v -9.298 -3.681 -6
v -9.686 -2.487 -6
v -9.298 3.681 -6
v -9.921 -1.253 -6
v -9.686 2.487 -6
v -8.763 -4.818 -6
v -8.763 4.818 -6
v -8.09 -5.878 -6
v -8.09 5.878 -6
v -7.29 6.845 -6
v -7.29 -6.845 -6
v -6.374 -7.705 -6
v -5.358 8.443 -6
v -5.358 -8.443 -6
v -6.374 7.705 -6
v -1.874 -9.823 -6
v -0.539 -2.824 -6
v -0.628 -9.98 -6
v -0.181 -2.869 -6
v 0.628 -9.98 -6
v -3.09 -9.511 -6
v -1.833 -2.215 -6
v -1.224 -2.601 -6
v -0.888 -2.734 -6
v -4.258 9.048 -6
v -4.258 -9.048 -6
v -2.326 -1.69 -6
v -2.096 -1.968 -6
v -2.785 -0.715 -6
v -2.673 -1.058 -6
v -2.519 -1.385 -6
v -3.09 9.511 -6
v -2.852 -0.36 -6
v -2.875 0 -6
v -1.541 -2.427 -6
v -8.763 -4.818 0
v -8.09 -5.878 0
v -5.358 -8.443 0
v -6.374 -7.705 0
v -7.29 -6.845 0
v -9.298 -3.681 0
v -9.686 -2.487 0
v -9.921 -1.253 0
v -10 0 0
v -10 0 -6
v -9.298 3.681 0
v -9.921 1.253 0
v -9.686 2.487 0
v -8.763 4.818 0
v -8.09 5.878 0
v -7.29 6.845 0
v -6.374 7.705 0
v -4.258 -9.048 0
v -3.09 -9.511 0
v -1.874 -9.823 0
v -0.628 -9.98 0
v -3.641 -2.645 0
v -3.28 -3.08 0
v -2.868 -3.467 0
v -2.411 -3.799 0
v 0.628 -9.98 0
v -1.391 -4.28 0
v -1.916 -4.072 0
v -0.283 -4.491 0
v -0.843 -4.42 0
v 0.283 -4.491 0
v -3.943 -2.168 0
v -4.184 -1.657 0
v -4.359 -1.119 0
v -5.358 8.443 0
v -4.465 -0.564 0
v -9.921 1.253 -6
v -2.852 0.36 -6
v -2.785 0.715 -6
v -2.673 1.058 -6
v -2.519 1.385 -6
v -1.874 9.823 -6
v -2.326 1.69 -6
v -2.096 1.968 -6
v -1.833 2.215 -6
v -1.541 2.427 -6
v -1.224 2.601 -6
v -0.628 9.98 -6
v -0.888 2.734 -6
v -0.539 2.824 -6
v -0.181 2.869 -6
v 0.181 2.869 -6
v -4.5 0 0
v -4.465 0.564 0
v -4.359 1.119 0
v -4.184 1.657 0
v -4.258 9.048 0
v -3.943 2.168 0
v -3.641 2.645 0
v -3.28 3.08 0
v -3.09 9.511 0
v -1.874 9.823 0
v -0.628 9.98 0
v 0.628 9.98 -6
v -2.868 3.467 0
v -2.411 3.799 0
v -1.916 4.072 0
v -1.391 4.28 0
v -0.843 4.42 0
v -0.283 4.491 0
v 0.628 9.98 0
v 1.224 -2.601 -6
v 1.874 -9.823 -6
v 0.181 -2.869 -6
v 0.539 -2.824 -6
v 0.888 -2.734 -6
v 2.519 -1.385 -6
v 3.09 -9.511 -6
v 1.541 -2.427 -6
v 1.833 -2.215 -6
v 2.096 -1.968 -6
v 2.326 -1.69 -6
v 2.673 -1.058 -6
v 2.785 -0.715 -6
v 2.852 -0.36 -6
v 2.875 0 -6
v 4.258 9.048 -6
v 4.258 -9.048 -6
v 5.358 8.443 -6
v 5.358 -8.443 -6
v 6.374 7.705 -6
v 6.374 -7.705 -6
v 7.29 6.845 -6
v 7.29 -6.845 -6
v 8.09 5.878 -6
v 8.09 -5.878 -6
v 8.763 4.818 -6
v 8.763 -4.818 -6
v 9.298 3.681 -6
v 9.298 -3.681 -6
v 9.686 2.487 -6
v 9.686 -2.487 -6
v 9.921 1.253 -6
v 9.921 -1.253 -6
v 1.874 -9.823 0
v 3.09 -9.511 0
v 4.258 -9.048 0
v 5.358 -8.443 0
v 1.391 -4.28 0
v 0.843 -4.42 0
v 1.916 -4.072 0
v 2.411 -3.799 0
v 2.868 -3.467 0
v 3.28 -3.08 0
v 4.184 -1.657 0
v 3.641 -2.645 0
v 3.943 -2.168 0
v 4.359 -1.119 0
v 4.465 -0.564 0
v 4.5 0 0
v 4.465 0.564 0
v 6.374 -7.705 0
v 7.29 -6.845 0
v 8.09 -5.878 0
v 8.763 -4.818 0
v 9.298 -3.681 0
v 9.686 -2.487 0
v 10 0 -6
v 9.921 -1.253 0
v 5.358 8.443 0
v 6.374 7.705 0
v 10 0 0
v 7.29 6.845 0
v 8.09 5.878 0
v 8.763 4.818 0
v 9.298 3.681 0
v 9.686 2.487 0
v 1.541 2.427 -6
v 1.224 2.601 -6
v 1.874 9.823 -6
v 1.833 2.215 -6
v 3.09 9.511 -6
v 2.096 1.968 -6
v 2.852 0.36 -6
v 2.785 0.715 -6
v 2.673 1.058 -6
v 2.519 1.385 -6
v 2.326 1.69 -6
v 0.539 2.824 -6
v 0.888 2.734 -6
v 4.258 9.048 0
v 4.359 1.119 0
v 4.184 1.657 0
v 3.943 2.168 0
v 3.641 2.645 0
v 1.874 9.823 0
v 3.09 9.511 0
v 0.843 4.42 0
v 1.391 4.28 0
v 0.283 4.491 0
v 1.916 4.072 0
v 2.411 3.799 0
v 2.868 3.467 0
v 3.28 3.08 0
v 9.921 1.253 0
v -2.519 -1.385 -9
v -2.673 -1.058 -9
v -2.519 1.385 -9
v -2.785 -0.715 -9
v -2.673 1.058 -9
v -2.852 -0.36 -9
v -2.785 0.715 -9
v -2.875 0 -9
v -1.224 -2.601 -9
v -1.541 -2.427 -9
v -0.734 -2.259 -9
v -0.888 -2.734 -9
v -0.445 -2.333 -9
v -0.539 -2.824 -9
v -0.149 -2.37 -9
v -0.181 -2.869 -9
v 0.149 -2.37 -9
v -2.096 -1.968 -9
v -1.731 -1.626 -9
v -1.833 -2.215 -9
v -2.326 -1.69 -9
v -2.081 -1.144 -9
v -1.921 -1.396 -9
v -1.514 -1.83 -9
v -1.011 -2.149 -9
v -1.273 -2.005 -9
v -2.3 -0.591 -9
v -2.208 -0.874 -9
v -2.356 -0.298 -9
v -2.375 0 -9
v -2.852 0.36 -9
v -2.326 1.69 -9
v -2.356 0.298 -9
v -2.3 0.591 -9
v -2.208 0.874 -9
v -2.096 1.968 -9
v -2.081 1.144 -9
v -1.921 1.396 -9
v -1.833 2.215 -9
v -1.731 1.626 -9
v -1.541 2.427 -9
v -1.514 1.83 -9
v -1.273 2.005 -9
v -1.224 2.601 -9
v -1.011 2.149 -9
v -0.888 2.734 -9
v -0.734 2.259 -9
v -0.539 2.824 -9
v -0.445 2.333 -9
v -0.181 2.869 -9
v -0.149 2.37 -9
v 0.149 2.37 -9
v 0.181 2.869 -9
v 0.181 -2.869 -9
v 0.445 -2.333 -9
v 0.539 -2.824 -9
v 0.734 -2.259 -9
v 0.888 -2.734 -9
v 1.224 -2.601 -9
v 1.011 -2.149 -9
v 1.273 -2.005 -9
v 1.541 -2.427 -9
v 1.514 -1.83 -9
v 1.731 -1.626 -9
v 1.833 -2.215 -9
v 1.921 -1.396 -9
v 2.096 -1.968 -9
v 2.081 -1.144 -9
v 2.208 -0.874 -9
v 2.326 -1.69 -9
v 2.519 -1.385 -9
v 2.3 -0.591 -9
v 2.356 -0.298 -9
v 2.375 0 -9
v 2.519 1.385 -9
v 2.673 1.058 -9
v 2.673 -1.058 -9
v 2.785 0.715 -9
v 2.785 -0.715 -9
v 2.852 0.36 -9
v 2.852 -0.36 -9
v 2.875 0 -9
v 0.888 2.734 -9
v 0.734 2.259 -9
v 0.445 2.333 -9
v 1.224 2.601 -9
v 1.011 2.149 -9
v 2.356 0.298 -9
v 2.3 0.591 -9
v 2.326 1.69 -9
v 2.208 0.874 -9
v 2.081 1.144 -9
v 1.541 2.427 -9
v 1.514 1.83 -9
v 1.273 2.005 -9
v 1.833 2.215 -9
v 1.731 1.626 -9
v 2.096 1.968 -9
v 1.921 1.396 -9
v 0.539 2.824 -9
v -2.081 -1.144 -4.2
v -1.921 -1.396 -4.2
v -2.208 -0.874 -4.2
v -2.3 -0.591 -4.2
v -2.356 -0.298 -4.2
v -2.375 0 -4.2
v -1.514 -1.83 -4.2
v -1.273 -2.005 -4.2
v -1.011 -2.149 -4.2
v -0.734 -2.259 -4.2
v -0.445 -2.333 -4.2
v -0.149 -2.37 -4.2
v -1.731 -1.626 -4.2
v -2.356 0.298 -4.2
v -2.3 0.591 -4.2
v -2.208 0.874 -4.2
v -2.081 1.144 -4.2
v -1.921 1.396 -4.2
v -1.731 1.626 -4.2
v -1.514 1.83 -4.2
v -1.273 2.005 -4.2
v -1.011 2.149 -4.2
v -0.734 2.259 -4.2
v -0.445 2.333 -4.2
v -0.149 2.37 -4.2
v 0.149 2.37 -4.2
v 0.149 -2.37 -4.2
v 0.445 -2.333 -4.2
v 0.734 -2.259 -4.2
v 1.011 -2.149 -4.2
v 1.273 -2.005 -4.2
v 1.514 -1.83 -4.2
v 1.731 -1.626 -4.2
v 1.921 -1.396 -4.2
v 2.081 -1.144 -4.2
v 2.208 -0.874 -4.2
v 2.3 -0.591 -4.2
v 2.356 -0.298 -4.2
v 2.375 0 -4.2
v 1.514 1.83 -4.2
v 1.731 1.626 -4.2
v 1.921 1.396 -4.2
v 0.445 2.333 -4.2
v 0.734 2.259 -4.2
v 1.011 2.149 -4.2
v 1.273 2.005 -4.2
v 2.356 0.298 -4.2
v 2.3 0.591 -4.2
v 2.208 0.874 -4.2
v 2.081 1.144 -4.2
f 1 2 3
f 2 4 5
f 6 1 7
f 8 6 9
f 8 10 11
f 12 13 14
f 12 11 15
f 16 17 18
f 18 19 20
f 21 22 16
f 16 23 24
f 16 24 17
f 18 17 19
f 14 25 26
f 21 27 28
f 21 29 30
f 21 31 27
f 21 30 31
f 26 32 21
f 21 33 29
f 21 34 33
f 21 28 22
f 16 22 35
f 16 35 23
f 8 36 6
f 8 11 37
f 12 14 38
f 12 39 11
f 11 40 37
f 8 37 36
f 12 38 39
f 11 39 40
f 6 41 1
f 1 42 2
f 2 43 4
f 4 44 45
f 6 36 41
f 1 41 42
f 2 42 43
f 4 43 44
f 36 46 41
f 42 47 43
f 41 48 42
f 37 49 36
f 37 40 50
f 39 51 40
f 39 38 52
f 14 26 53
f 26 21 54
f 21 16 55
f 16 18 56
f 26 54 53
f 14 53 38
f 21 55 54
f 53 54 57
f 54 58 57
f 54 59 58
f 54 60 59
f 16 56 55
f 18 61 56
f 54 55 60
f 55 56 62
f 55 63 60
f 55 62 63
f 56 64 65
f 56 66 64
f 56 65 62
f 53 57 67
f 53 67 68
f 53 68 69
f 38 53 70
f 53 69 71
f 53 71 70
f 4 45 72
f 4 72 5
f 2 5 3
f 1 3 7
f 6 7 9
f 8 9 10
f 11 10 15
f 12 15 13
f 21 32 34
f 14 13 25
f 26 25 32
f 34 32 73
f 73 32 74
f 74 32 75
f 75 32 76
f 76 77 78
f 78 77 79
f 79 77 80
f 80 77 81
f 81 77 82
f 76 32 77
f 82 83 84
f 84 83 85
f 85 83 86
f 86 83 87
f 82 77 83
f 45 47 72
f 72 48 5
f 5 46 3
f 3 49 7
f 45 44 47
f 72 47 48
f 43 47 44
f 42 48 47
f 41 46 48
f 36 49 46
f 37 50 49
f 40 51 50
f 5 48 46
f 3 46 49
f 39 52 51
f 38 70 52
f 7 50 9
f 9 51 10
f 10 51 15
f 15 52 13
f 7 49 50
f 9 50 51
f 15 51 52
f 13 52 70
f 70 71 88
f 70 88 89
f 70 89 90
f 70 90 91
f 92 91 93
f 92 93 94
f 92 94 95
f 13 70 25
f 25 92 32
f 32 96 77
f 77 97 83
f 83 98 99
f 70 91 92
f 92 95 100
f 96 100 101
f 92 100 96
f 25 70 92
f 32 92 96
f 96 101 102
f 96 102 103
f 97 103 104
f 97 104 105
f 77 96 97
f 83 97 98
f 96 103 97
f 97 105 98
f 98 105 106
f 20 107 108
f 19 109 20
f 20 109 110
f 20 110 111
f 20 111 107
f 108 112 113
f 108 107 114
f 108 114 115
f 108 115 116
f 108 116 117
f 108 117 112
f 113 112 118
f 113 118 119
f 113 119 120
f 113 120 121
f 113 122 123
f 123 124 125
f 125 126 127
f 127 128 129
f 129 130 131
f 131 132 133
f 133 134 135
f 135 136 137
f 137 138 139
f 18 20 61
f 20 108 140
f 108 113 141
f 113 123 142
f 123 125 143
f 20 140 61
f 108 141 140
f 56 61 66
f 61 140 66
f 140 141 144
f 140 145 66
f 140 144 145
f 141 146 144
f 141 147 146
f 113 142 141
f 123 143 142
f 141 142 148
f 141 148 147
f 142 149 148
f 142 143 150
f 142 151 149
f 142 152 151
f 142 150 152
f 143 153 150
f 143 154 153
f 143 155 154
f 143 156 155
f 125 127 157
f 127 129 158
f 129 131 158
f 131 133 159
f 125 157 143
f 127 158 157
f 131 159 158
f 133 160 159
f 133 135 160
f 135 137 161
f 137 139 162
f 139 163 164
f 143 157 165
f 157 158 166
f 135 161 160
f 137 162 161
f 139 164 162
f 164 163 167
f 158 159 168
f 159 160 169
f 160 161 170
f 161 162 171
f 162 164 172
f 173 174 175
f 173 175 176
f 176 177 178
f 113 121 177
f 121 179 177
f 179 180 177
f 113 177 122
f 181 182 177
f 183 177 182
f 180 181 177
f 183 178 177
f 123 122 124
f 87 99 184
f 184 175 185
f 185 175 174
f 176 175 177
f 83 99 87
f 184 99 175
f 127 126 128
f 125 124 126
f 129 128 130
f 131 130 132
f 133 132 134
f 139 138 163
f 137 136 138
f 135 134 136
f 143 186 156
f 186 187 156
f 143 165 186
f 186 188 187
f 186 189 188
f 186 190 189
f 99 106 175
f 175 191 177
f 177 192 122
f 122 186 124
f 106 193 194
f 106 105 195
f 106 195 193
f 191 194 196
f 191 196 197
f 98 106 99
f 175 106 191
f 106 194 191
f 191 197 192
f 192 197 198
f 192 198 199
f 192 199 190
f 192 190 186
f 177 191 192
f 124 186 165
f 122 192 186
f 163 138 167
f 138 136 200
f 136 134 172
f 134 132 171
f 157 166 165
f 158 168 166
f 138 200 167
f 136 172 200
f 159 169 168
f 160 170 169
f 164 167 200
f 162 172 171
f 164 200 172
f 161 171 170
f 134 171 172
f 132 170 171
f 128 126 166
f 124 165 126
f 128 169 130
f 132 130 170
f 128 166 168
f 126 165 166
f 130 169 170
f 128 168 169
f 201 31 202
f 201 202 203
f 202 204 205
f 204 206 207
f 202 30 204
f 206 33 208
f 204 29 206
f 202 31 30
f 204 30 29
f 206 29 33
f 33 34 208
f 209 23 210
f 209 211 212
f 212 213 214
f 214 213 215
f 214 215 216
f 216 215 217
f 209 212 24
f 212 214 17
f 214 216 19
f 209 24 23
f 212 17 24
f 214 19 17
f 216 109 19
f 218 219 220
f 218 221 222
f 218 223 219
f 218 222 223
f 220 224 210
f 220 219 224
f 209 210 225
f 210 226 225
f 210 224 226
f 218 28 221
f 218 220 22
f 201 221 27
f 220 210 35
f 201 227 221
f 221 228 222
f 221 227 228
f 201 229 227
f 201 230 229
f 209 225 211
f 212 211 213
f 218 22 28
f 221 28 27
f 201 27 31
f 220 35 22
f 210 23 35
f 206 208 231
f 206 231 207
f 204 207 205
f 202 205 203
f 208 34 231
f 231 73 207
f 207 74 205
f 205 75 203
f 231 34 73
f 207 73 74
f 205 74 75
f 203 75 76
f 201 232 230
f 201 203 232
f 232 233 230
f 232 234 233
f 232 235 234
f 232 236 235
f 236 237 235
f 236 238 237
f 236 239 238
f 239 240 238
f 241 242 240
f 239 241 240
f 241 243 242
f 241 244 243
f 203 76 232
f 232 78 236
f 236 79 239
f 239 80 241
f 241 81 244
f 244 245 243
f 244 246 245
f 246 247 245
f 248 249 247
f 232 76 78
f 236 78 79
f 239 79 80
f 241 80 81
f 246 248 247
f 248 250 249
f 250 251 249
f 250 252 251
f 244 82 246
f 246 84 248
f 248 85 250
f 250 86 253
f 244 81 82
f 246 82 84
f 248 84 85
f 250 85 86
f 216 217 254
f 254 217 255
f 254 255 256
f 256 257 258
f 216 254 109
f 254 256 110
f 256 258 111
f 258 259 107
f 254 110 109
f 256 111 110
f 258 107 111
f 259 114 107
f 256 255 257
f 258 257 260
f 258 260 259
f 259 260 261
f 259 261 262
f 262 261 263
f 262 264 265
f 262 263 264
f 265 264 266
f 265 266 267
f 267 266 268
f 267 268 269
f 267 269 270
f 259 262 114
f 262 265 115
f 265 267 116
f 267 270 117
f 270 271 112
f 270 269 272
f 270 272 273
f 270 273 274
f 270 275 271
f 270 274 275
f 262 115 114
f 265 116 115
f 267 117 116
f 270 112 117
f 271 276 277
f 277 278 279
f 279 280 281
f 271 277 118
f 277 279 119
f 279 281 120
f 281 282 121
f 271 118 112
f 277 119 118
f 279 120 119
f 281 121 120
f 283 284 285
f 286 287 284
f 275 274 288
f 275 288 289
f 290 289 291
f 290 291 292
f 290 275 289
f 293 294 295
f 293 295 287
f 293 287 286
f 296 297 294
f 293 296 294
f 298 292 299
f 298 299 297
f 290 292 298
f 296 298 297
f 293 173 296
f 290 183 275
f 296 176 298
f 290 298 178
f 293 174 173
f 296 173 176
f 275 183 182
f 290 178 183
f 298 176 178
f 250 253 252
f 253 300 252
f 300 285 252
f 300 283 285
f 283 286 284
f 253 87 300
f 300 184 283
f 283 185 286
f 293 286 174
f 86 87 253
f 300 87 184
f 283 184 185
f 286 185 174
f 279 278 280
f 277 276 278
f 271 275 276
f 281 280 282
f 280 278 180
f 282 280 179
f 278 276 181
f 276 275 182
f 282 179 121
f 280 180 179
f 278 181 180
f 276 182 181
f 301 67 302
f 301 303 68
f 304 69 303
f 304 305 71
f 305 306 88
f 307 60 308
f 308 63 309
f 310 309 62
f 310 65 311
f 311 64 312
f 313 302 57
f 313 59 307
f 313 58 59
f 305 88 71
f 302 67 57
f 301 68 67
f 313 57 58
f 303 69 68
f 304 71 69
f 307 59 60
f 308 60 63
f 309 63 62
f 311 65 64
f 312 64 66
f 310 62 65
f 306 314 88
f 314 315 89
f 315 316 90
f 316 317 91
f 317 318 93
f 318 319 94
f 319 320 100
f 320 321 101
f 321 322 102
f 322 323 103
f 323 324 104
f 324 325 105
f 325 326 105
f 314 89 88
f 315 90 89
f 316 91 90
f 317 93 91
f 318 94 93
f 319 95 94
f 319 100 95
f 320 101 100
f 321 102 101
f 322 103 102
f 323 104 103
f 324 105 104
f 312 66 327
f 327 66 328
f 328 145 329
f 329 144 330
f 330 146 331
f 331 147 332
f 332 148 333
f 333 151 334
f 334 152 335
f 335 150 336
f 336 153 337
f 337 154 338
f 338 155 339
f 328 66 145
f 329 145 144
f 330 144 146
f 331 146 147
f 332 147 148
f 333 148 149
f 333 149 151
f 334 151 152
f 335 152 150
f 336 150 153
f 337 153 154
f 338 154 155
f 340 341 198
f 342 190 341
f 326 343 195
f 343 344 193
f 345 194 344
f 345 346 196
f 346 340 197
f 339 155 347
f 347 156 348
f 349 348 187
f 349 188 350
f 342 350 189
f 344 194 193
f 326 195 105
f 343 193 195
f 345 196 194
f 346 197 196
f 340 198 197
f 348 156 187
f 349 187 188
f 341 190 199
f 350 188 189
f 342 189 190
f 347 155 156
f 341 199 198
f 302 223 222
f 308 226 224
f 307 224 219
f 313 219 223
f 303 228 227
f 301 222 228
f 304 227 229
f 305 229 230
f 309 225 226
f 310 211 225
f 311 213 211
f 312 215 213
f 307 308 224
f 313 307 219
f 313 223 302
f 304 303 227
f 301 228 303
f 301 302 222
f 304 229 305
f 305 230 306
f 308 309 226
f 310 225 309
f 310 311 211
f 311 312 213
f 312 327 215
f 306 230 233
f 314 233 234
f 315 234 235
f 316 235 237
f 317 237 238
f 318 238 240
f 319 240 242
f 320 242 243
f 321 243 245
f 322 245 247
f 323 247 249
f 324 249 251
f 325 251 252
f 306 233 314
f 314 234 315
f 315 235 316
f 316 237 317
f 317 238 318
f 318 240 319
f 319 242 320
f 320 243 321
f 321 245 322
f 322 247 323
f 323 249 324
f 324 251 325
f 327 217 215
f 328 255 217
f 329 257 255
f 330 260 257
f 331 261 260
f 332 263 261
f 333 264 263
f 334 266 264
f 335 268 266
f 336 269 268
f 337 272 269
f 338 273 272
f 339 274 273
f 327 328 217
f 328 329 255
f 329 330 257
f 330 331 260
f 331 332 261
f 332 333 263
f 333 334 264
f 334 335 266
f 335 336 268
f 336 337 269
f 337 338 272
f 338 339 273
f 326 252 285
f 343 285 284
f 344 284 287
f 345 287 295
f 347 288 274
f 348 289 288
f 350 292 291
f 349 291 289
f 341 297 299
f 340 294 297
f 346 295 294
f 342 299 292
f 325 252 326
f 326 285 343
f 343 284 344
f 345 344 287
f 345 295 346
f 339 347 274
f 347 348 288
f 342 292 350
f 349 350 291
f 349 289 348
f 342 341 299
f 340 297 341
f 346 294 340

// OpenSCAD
$fn = 50;

difference() {
	union() {
		translate(v = [0, 0, -6.0]) {
			cylinder(h = 6, r = 10.0);
		}
		#translate(v = [0, 0, -9.0]) {
			cylinder(h = 9, r = 2.875);
		}
	}
	union() {
		translate(v = [0, 0, 0]) {
			rotate(a = [0, 0, 0]) {
				difference() {
					union() {
						translate(v = [0, 0, -9.0]) {
							cylinder(h = 9, r = 2.25);
						}
						translate(v = [0, 0, -4.2]) {
							cylinder(h = 4.2, r1 = 2.375, r2 = 4.5);
						}
						translate(v = [0, 0, -9.0]) {
							cylinder(h = 9, r = 2.375);
						}
						translate(v = [0, 0, -9.0]) {
							cylinder(h = 9, r = 2.25);
						}
					}
					union();
				}
			}
		}
	}
}
